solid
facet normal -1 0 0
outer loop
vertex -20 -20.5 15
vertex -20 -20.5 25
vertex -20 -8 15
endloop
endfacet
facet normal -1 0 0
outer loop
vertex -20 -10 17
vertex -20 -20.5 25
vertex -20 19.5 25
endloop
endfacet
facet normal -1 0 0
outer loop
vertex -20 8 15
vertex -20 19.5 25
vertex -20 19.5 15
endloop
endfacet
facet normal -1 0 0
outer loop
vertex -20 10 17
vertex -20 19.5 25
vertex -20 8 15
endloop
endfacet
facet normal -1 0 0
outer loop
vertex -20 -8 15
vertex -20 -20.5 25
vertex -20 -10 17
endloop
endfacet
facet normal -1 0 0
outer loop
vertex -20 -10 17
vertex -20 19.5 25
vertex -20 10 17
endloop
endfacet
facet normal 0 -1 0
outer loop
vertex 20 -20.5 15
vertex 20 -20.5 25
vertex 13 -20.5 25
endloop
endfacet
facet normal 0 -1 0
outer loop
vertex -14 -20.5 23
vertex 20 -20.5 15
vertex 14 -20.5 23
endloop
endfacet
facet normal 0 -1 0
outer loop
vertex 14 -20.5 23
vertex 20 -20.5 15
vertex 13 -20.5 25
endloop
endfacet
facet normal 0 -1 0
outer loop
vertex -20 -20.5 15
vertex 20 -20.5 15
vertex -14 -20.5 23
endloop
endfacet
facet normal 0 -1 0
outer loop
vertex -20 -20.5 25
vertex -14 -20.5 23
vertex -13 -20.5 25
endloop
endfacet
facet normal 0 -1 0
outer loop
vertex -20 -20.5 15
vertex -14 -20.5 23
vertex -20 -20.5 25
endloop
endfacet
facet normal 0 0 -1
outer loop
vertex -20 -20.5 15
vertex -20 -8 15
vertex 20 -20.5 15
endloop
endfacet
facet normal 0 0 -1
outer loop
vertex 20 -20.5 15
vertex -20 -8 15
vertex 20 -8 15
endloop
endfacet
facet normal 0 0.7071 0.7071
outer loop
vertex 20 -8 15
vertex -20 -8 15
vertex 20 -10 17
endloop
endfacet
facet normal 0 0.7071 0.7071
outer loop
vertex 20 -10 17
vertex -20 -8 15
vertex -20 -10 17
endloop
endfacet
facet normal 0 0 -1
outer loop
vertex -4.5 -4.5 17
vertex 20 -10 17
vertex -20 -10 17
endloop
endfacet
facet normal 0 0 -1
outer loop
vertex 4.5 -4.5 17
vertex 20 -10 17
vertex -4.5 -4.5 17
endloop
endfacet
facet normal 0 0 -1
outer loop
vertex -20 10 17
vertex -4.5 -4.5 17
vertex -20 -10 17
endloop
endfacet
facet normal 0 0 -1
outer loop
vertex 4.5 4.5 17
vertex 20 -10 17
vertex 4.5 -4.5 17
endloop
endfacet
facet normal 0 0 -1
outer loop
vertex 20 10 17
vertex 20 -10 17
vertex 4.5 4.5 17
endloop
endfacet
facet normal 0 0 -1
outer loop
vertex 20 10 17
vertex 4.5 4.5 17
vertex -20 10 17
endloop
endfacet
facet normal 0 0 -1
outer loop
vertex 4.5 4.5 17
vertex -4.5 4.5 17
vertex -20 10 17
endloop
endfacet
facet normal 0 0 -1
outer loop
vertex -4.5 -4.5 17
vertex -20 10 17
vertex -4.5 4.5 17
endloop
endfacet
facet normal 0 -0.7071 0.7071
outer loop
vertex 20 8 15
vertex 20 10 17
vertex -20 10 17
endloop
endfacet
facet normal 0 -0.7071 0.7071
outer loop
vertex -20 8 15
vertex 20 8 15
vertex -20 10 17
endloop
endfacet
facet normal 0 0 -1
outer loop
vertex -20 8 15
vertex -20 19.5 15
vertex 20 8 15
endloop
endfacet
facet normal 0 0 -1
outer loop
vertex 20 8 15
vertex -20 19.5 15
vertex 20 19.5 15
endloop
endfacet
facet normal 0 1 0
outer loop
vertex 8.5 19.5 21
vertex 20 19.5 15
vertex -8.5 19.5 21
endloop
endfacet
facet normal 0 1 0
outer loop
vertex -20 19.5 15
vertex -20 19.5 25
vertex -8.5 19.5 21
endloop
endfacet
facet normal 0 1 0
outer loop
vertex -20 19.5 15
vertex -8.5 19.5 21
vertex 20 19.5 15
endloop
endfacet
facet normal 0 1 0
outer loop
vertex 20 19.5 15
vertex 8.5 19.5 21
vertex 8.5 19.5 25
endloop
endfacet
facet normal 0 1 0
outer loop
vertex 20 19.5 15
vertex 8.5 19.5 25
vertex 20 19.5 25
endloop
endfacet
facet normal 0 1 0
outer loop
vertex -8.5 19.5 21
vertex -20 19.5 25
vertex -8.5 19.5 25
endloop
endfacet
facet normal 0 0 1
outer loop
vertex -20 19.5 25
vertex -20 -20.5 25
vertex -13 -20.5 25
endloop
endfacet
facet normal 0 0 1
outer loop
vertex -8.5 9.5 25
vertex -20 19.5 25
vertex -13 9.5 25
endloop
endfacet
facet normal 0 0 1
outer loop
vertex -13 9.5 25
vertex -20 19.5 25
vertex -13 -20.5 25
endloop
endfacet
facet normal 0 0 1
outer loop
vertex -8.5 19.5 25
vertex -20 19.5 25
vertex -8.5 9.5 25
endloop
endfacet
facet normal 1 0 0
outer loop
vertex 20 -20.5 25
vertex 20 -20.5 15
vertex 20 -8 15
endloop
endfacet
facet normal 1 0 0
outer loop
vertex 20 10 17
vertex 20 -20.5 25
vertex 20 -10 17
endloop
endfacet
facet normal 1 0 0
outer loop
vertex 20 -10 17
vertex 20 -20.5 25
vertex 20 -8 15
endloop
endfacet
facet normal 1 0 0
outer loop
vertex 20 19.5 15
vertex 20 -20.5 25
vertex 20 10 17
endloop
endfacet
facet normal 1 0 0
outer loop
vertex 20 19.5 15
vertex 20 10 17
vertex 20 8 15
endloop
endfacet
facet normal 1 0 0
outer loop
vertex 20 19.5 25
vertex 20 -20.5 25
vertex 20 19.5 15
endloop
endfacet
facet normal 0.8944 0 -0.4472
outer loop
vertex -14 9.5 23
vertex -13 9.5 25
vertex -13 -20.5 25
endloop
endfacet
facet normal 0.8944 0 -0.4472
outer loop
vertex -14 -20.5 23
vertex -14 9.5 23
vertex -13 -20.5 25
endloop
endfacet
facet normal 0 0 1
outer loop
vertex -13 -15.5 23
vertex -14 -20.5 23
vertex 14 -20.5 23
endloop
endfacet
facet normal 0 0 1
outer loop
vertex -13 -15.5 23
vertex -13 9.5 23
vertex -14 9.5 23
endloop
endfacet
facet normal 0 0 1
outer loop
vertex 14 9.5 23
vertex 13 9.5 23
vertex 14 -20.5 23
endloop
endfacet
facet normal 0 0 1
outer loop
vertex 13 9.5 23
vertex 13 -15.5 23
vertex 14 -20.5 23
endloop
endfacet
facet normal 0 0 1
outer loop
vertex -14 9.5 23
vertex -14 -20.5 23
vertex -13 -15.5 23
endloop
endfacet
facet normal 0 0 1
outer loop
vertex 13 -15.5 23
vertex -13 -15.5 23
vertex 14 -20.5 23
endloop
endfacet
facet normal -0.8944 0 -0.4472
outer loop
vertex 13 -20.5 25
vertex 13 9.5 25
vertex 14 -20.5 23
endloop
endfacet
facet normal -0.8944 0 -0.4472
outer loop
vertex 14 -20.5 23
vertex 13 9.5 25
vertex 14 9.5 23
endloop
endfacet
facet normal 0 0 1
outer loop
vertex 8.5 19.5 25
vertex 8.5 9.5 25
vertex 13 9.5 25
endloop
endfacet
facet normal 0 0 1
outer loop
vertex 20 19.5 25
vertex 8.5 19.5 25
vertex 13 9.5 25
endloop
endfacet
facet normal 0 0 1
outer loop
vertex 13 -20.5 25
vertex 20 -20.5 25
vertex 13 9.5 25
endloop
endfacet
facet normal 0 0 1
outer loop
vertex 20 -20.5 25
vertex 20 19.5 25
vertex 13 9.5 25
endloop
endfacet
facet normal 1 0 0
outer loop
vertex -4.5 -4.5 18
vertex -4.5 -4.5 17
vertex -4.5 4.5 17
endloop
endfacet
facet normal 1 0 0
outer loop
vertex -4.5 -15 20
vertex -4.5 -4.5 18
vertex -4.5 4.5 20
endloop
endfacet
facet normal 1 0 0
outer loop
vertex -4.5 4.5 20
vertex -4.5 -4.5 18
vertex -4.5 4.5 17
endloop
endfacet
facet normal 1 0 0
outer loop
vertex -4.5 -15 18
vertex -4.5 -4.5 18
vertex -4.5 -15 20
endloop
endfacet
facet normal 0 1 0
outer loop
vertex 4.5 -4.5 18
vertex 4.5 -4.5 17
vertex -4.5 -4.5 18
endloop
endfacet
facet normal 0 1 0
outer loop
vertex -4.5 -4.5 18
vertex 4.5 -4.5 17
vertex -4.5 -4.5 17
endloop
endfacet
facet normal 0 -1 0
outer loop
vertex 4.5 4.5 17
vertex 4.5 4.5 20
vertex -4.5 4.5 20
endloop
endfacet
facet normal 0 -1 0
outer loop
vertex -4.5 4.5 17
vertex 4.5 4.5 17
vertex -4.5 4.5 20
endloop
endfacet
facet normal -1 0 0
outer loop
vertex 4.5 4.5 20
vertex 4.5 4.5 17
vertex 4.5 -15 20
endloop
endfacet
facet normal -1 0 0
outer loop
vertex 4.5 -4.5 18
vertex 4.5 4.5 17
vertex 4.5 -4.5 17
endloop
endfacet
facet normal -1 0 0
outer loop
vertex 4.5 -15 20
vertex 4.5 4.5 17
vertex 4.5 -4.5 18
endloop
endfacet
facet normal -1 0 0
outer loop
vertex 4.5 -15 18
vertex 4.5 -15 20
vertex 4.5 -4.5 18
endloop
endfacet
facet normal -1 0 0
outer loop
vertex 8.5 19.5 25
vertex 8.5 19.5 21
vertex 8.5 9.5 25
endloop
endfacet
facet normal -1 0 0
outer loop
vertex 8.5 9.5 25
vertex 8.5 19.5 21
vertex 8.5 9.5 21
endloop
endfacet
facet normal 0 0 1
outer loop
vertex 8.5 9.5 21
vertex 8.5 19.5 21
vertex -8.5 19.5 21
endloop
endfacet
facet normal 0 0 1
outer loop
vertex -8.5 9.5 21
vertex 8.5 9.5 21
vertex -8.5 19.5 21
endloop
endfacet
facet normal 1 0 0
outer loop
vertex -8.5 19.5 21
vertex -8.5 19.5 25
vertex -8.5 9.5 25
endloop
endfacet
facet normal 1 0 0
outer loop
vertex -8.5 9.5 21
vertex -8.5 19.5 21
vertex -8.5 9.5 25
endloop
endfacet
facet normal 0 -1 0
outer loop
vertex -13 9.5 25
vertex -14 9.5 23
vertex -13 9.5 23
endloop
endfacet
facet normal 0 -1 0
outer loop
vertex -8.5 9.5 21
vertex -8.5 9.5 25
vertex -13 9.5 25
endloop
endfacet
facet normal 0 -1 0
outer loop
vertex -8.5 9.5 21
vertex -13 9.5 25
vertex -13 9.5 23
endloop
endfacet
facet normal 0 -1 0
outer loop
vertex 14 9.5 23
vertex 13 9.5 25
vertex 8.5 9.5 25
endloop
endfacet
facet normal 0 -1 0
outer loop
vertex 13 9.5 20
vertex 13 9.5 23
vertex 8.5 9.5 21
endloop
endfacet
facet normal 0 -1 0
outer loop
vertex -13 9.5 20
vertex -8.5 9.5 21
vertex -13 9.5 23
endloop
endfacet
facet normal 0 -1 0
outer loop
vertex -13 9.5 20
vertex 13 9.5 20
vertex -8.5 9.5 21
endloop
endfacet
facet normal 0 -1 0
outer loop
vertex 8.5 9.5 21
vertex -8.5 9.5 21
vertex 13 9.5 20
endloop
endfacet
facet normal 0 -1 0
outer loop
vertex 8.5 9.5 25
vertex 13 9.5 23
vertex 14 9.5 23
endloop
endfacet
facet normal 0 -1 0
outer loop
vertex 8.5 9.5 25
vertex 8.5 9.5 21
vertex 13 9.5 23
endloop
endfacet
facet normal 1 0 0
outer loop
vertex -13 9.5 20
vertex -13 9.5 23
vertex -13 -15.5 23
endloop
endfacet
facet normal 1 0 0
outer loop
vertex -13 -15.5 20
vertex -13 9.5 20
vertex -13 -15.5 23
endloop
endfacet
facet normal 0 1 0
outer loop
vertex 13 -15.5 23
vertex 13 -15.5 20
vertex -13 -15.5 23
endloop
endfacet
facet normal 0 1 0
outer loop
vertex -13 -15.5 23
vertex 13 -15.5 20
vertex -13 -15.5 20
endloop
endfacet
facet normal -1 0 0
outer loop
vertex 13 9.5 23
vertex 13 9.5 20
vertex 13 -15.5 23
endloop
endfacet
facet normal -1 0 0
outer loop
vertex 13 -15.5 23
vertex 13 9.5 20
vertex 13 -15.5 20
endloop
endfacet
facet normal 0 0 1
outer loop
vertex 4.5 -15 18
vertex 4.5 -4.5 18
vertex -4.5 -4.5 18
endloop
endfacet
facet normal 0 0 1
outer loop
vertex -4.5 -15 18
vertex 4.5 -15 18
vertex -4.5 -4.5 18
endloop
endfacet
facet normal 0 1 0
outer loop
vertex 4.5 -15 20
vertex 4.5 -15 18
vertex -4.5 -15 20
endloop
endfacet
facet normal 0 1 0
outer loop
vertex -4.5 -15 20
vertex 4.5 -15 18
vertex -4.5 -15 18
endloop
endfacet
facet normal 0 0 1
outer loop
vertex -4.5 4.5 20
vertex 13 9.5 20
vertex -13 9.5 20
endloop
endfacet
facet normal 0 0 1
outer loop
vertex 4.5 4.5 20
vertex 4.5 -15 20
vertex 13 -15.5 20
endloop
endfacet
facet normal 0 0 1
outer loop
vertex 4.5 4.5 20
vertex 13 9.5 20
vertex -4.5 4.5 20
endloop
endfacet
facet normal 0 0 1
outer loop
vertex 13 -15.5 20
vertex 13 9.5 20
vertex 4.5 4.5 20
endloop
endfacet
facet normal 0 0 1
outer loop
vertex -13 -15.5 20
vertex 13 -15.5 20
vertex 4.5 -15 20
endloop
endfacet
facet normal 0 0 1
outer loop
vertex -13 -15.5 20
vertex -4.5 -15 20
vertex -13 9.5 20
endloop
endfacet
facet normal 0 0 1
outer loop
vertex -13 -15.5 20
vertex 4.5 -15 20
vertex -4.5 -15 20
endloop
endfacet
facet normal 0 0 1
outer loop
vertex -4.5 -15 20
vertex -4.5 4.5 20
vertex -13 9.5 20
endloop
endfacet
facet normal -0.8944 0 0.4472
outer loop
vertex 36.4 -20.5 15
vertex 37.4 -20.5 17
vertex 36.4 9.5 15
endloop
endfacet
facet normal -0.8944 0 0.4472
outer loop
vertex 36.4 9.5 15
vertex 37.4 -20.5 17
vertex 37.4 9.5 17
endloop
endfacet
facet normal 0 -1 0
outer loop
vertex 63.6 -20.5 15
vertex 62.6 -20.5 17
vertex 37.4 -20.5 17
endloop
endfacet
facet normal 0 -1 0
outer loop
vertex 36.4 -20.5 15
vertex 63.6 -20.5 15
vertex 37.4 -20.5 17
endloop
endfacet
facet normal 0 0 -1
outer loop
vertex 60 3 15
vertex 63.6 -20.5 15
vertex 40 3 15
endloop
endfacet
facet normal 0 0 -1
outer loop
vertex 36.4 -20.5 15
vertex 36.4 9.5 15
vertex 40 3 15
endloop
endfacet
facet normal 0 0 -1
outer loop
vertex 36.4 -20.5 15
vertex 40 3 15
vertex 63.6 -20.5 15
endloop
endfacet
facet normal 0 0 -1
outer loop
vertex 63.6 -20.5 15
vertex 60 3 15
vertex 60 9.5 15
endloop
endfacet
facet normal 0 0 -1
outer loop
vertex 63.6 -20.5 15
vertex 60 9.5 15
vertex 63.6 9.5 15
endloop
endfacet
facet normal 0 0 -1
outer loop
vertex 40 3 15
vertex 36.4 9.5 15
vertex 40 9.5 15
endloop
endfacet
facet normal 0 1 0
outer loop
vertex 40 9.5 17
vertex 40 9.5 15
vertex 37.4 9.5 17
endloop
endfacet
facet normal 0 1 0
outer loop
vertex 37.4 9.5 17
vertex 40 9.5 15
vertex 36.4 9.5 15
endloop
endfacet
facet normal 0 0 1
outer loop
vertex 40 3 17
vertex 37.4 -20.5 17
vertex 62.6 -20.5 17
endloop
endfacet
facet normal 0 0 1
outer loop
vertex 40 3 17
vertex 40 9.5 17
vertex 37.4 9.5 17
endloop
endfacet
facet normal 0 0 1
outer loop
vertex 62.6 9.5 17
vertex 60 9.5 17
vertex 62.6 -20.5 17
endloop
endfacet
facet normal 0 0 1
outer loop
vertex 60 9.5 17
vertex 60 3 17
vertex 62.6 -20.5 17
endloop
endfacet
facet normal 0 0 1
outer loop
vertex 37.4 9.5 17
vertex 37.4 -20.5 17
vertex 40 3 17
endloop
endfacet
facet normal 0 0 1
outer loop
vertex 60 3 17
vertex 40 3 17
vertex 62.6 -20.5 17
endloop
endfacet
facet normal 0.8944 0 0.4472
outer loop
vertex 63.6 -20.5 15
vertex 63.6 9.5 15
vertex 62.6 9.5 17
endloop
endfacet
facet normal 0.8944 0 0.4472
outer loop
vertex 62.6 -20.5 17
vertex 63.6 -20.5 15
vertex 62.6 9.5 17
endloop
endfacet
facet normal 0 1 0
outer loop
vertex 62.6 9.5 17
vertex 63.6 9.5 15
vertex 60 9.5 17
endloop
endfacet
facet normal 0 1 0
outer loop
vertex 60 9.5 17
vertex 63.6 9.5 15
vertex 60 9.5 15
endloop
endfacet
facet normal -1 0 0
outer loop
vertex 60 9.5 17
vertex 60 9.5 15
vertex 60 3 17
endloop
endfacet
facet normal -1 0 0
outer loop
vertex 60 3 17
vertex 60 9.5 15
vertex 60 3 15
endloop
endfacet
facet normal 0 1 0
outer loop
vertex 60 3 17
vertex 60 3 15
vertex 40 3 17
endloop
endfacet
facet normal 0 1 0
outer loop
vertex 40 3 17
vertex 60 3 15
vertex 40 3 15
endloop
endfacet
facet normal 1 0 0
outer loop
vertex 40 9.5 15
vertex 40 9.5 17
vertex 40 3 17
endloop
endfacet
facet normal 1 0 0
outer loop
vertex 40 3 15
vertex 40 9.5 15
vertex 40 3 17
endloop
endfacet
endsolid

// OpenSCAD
// Modified from: https://github.com/luisibanez/ShapesFor3DPrinting/tree/master/OpenSCA

module piCameraEnclosure() 
{
	function r_from_dia(d) = d / 2;
	function midValue(a,b) = ( a + b ) / 2;

	union() {
		piCameraAdapter();
		translate([50,0,-8])
			piCameraBackCover(0.1);
	}

	module piCameraBackCoverBevel(clearance) {
		c = clearance;
		hw = ( 25 / 2 ) + c;
		he = hw + 1.0;
		polyhedron
			(points = [
				[ hw, -15, -1 ],
				[ hw,  15, -1 ], 
				[ hw,  15,  1 ], 
				[ hw, -15,  1 ],
				[ he, -15, -1 ],
				[ he,  15, -1 ] 
				], 
			triangles = [
				[ 0, 1, 4 ],
				[ 1, 5, 4 ],
				[ 0, 4, 3 ],
				[ 1, 2, 5 ],
				[ 2, 3, 4 ],
				[ 2, 4, 5 ],
				[ 0, 2, 1 ],
				[ 0, 3, 2 ]
			]
		);
	}

	module piCameraBackCoverBevels(clearance) {
		union() {
			piCameraBackCoverBevel(clearance);
			mirror([1,0,0])
				piCameraBackCoverBevel(clearance);
		}
	}

	module piCameraBackCover(clearance) {
		c = 2*clearance;
		translate([0,-5.5,24])
			union() {
				piCameraBackCoverBevels(clearance);
				difference() {
					cube(size=[25+c,30,2],center=true);
					translate([0,12,0])
						cube(size=[20,7,2],center=true);
				}
			}
	}

	module cableOpening() {
		translate([0,14,3])
			cube(size=[17,12,4],center=true);
	}

	module chipOpening() {
		clearance = 0.5;
		c = 2 * clearance;
		translate([0,-9.5,0])
			cube(size=[8+c,10+c,4],center=true);
	}

	module lensOpening() {
		clearance = 0.5;
		c = 2 * clearance;
		translate([0,0,-2.5])
			cube(size=[8+c,8+c,5], center=true);
	}

	module boardOpening() {
		clearance = 0.5;
		c = 2 * clearance;
		translate([0,-3,2.5])
			cube(size=[25+c,24+c,5], center=true);
	}

	module filterSlot() {
		translate([0,0,-3])
		rotate(a = 90, v = [0,1,0])
		linear_extrude(height = 100, center = true) {
			polygon(
				points = [
					[0,-10],[10,0],[0,10]
				],
				path = [0,1,2,0]
			);
		}
	}

	module cameraFrame() {
		translate([0,-0.5,0])
			cube(size=[40,40,10], center=true);
	}

	module piCameraAdapter() {
		difference() {
			translate([0,0,20])
				difference() {
					cameraFrame();
					boardOpening();
					lensOpening();
					cableOpening();
					chipOpening();
					filterSlot();
				}
			piCameraBackCover(0.5);
		}
	}

}

piCameraEnclosure();
